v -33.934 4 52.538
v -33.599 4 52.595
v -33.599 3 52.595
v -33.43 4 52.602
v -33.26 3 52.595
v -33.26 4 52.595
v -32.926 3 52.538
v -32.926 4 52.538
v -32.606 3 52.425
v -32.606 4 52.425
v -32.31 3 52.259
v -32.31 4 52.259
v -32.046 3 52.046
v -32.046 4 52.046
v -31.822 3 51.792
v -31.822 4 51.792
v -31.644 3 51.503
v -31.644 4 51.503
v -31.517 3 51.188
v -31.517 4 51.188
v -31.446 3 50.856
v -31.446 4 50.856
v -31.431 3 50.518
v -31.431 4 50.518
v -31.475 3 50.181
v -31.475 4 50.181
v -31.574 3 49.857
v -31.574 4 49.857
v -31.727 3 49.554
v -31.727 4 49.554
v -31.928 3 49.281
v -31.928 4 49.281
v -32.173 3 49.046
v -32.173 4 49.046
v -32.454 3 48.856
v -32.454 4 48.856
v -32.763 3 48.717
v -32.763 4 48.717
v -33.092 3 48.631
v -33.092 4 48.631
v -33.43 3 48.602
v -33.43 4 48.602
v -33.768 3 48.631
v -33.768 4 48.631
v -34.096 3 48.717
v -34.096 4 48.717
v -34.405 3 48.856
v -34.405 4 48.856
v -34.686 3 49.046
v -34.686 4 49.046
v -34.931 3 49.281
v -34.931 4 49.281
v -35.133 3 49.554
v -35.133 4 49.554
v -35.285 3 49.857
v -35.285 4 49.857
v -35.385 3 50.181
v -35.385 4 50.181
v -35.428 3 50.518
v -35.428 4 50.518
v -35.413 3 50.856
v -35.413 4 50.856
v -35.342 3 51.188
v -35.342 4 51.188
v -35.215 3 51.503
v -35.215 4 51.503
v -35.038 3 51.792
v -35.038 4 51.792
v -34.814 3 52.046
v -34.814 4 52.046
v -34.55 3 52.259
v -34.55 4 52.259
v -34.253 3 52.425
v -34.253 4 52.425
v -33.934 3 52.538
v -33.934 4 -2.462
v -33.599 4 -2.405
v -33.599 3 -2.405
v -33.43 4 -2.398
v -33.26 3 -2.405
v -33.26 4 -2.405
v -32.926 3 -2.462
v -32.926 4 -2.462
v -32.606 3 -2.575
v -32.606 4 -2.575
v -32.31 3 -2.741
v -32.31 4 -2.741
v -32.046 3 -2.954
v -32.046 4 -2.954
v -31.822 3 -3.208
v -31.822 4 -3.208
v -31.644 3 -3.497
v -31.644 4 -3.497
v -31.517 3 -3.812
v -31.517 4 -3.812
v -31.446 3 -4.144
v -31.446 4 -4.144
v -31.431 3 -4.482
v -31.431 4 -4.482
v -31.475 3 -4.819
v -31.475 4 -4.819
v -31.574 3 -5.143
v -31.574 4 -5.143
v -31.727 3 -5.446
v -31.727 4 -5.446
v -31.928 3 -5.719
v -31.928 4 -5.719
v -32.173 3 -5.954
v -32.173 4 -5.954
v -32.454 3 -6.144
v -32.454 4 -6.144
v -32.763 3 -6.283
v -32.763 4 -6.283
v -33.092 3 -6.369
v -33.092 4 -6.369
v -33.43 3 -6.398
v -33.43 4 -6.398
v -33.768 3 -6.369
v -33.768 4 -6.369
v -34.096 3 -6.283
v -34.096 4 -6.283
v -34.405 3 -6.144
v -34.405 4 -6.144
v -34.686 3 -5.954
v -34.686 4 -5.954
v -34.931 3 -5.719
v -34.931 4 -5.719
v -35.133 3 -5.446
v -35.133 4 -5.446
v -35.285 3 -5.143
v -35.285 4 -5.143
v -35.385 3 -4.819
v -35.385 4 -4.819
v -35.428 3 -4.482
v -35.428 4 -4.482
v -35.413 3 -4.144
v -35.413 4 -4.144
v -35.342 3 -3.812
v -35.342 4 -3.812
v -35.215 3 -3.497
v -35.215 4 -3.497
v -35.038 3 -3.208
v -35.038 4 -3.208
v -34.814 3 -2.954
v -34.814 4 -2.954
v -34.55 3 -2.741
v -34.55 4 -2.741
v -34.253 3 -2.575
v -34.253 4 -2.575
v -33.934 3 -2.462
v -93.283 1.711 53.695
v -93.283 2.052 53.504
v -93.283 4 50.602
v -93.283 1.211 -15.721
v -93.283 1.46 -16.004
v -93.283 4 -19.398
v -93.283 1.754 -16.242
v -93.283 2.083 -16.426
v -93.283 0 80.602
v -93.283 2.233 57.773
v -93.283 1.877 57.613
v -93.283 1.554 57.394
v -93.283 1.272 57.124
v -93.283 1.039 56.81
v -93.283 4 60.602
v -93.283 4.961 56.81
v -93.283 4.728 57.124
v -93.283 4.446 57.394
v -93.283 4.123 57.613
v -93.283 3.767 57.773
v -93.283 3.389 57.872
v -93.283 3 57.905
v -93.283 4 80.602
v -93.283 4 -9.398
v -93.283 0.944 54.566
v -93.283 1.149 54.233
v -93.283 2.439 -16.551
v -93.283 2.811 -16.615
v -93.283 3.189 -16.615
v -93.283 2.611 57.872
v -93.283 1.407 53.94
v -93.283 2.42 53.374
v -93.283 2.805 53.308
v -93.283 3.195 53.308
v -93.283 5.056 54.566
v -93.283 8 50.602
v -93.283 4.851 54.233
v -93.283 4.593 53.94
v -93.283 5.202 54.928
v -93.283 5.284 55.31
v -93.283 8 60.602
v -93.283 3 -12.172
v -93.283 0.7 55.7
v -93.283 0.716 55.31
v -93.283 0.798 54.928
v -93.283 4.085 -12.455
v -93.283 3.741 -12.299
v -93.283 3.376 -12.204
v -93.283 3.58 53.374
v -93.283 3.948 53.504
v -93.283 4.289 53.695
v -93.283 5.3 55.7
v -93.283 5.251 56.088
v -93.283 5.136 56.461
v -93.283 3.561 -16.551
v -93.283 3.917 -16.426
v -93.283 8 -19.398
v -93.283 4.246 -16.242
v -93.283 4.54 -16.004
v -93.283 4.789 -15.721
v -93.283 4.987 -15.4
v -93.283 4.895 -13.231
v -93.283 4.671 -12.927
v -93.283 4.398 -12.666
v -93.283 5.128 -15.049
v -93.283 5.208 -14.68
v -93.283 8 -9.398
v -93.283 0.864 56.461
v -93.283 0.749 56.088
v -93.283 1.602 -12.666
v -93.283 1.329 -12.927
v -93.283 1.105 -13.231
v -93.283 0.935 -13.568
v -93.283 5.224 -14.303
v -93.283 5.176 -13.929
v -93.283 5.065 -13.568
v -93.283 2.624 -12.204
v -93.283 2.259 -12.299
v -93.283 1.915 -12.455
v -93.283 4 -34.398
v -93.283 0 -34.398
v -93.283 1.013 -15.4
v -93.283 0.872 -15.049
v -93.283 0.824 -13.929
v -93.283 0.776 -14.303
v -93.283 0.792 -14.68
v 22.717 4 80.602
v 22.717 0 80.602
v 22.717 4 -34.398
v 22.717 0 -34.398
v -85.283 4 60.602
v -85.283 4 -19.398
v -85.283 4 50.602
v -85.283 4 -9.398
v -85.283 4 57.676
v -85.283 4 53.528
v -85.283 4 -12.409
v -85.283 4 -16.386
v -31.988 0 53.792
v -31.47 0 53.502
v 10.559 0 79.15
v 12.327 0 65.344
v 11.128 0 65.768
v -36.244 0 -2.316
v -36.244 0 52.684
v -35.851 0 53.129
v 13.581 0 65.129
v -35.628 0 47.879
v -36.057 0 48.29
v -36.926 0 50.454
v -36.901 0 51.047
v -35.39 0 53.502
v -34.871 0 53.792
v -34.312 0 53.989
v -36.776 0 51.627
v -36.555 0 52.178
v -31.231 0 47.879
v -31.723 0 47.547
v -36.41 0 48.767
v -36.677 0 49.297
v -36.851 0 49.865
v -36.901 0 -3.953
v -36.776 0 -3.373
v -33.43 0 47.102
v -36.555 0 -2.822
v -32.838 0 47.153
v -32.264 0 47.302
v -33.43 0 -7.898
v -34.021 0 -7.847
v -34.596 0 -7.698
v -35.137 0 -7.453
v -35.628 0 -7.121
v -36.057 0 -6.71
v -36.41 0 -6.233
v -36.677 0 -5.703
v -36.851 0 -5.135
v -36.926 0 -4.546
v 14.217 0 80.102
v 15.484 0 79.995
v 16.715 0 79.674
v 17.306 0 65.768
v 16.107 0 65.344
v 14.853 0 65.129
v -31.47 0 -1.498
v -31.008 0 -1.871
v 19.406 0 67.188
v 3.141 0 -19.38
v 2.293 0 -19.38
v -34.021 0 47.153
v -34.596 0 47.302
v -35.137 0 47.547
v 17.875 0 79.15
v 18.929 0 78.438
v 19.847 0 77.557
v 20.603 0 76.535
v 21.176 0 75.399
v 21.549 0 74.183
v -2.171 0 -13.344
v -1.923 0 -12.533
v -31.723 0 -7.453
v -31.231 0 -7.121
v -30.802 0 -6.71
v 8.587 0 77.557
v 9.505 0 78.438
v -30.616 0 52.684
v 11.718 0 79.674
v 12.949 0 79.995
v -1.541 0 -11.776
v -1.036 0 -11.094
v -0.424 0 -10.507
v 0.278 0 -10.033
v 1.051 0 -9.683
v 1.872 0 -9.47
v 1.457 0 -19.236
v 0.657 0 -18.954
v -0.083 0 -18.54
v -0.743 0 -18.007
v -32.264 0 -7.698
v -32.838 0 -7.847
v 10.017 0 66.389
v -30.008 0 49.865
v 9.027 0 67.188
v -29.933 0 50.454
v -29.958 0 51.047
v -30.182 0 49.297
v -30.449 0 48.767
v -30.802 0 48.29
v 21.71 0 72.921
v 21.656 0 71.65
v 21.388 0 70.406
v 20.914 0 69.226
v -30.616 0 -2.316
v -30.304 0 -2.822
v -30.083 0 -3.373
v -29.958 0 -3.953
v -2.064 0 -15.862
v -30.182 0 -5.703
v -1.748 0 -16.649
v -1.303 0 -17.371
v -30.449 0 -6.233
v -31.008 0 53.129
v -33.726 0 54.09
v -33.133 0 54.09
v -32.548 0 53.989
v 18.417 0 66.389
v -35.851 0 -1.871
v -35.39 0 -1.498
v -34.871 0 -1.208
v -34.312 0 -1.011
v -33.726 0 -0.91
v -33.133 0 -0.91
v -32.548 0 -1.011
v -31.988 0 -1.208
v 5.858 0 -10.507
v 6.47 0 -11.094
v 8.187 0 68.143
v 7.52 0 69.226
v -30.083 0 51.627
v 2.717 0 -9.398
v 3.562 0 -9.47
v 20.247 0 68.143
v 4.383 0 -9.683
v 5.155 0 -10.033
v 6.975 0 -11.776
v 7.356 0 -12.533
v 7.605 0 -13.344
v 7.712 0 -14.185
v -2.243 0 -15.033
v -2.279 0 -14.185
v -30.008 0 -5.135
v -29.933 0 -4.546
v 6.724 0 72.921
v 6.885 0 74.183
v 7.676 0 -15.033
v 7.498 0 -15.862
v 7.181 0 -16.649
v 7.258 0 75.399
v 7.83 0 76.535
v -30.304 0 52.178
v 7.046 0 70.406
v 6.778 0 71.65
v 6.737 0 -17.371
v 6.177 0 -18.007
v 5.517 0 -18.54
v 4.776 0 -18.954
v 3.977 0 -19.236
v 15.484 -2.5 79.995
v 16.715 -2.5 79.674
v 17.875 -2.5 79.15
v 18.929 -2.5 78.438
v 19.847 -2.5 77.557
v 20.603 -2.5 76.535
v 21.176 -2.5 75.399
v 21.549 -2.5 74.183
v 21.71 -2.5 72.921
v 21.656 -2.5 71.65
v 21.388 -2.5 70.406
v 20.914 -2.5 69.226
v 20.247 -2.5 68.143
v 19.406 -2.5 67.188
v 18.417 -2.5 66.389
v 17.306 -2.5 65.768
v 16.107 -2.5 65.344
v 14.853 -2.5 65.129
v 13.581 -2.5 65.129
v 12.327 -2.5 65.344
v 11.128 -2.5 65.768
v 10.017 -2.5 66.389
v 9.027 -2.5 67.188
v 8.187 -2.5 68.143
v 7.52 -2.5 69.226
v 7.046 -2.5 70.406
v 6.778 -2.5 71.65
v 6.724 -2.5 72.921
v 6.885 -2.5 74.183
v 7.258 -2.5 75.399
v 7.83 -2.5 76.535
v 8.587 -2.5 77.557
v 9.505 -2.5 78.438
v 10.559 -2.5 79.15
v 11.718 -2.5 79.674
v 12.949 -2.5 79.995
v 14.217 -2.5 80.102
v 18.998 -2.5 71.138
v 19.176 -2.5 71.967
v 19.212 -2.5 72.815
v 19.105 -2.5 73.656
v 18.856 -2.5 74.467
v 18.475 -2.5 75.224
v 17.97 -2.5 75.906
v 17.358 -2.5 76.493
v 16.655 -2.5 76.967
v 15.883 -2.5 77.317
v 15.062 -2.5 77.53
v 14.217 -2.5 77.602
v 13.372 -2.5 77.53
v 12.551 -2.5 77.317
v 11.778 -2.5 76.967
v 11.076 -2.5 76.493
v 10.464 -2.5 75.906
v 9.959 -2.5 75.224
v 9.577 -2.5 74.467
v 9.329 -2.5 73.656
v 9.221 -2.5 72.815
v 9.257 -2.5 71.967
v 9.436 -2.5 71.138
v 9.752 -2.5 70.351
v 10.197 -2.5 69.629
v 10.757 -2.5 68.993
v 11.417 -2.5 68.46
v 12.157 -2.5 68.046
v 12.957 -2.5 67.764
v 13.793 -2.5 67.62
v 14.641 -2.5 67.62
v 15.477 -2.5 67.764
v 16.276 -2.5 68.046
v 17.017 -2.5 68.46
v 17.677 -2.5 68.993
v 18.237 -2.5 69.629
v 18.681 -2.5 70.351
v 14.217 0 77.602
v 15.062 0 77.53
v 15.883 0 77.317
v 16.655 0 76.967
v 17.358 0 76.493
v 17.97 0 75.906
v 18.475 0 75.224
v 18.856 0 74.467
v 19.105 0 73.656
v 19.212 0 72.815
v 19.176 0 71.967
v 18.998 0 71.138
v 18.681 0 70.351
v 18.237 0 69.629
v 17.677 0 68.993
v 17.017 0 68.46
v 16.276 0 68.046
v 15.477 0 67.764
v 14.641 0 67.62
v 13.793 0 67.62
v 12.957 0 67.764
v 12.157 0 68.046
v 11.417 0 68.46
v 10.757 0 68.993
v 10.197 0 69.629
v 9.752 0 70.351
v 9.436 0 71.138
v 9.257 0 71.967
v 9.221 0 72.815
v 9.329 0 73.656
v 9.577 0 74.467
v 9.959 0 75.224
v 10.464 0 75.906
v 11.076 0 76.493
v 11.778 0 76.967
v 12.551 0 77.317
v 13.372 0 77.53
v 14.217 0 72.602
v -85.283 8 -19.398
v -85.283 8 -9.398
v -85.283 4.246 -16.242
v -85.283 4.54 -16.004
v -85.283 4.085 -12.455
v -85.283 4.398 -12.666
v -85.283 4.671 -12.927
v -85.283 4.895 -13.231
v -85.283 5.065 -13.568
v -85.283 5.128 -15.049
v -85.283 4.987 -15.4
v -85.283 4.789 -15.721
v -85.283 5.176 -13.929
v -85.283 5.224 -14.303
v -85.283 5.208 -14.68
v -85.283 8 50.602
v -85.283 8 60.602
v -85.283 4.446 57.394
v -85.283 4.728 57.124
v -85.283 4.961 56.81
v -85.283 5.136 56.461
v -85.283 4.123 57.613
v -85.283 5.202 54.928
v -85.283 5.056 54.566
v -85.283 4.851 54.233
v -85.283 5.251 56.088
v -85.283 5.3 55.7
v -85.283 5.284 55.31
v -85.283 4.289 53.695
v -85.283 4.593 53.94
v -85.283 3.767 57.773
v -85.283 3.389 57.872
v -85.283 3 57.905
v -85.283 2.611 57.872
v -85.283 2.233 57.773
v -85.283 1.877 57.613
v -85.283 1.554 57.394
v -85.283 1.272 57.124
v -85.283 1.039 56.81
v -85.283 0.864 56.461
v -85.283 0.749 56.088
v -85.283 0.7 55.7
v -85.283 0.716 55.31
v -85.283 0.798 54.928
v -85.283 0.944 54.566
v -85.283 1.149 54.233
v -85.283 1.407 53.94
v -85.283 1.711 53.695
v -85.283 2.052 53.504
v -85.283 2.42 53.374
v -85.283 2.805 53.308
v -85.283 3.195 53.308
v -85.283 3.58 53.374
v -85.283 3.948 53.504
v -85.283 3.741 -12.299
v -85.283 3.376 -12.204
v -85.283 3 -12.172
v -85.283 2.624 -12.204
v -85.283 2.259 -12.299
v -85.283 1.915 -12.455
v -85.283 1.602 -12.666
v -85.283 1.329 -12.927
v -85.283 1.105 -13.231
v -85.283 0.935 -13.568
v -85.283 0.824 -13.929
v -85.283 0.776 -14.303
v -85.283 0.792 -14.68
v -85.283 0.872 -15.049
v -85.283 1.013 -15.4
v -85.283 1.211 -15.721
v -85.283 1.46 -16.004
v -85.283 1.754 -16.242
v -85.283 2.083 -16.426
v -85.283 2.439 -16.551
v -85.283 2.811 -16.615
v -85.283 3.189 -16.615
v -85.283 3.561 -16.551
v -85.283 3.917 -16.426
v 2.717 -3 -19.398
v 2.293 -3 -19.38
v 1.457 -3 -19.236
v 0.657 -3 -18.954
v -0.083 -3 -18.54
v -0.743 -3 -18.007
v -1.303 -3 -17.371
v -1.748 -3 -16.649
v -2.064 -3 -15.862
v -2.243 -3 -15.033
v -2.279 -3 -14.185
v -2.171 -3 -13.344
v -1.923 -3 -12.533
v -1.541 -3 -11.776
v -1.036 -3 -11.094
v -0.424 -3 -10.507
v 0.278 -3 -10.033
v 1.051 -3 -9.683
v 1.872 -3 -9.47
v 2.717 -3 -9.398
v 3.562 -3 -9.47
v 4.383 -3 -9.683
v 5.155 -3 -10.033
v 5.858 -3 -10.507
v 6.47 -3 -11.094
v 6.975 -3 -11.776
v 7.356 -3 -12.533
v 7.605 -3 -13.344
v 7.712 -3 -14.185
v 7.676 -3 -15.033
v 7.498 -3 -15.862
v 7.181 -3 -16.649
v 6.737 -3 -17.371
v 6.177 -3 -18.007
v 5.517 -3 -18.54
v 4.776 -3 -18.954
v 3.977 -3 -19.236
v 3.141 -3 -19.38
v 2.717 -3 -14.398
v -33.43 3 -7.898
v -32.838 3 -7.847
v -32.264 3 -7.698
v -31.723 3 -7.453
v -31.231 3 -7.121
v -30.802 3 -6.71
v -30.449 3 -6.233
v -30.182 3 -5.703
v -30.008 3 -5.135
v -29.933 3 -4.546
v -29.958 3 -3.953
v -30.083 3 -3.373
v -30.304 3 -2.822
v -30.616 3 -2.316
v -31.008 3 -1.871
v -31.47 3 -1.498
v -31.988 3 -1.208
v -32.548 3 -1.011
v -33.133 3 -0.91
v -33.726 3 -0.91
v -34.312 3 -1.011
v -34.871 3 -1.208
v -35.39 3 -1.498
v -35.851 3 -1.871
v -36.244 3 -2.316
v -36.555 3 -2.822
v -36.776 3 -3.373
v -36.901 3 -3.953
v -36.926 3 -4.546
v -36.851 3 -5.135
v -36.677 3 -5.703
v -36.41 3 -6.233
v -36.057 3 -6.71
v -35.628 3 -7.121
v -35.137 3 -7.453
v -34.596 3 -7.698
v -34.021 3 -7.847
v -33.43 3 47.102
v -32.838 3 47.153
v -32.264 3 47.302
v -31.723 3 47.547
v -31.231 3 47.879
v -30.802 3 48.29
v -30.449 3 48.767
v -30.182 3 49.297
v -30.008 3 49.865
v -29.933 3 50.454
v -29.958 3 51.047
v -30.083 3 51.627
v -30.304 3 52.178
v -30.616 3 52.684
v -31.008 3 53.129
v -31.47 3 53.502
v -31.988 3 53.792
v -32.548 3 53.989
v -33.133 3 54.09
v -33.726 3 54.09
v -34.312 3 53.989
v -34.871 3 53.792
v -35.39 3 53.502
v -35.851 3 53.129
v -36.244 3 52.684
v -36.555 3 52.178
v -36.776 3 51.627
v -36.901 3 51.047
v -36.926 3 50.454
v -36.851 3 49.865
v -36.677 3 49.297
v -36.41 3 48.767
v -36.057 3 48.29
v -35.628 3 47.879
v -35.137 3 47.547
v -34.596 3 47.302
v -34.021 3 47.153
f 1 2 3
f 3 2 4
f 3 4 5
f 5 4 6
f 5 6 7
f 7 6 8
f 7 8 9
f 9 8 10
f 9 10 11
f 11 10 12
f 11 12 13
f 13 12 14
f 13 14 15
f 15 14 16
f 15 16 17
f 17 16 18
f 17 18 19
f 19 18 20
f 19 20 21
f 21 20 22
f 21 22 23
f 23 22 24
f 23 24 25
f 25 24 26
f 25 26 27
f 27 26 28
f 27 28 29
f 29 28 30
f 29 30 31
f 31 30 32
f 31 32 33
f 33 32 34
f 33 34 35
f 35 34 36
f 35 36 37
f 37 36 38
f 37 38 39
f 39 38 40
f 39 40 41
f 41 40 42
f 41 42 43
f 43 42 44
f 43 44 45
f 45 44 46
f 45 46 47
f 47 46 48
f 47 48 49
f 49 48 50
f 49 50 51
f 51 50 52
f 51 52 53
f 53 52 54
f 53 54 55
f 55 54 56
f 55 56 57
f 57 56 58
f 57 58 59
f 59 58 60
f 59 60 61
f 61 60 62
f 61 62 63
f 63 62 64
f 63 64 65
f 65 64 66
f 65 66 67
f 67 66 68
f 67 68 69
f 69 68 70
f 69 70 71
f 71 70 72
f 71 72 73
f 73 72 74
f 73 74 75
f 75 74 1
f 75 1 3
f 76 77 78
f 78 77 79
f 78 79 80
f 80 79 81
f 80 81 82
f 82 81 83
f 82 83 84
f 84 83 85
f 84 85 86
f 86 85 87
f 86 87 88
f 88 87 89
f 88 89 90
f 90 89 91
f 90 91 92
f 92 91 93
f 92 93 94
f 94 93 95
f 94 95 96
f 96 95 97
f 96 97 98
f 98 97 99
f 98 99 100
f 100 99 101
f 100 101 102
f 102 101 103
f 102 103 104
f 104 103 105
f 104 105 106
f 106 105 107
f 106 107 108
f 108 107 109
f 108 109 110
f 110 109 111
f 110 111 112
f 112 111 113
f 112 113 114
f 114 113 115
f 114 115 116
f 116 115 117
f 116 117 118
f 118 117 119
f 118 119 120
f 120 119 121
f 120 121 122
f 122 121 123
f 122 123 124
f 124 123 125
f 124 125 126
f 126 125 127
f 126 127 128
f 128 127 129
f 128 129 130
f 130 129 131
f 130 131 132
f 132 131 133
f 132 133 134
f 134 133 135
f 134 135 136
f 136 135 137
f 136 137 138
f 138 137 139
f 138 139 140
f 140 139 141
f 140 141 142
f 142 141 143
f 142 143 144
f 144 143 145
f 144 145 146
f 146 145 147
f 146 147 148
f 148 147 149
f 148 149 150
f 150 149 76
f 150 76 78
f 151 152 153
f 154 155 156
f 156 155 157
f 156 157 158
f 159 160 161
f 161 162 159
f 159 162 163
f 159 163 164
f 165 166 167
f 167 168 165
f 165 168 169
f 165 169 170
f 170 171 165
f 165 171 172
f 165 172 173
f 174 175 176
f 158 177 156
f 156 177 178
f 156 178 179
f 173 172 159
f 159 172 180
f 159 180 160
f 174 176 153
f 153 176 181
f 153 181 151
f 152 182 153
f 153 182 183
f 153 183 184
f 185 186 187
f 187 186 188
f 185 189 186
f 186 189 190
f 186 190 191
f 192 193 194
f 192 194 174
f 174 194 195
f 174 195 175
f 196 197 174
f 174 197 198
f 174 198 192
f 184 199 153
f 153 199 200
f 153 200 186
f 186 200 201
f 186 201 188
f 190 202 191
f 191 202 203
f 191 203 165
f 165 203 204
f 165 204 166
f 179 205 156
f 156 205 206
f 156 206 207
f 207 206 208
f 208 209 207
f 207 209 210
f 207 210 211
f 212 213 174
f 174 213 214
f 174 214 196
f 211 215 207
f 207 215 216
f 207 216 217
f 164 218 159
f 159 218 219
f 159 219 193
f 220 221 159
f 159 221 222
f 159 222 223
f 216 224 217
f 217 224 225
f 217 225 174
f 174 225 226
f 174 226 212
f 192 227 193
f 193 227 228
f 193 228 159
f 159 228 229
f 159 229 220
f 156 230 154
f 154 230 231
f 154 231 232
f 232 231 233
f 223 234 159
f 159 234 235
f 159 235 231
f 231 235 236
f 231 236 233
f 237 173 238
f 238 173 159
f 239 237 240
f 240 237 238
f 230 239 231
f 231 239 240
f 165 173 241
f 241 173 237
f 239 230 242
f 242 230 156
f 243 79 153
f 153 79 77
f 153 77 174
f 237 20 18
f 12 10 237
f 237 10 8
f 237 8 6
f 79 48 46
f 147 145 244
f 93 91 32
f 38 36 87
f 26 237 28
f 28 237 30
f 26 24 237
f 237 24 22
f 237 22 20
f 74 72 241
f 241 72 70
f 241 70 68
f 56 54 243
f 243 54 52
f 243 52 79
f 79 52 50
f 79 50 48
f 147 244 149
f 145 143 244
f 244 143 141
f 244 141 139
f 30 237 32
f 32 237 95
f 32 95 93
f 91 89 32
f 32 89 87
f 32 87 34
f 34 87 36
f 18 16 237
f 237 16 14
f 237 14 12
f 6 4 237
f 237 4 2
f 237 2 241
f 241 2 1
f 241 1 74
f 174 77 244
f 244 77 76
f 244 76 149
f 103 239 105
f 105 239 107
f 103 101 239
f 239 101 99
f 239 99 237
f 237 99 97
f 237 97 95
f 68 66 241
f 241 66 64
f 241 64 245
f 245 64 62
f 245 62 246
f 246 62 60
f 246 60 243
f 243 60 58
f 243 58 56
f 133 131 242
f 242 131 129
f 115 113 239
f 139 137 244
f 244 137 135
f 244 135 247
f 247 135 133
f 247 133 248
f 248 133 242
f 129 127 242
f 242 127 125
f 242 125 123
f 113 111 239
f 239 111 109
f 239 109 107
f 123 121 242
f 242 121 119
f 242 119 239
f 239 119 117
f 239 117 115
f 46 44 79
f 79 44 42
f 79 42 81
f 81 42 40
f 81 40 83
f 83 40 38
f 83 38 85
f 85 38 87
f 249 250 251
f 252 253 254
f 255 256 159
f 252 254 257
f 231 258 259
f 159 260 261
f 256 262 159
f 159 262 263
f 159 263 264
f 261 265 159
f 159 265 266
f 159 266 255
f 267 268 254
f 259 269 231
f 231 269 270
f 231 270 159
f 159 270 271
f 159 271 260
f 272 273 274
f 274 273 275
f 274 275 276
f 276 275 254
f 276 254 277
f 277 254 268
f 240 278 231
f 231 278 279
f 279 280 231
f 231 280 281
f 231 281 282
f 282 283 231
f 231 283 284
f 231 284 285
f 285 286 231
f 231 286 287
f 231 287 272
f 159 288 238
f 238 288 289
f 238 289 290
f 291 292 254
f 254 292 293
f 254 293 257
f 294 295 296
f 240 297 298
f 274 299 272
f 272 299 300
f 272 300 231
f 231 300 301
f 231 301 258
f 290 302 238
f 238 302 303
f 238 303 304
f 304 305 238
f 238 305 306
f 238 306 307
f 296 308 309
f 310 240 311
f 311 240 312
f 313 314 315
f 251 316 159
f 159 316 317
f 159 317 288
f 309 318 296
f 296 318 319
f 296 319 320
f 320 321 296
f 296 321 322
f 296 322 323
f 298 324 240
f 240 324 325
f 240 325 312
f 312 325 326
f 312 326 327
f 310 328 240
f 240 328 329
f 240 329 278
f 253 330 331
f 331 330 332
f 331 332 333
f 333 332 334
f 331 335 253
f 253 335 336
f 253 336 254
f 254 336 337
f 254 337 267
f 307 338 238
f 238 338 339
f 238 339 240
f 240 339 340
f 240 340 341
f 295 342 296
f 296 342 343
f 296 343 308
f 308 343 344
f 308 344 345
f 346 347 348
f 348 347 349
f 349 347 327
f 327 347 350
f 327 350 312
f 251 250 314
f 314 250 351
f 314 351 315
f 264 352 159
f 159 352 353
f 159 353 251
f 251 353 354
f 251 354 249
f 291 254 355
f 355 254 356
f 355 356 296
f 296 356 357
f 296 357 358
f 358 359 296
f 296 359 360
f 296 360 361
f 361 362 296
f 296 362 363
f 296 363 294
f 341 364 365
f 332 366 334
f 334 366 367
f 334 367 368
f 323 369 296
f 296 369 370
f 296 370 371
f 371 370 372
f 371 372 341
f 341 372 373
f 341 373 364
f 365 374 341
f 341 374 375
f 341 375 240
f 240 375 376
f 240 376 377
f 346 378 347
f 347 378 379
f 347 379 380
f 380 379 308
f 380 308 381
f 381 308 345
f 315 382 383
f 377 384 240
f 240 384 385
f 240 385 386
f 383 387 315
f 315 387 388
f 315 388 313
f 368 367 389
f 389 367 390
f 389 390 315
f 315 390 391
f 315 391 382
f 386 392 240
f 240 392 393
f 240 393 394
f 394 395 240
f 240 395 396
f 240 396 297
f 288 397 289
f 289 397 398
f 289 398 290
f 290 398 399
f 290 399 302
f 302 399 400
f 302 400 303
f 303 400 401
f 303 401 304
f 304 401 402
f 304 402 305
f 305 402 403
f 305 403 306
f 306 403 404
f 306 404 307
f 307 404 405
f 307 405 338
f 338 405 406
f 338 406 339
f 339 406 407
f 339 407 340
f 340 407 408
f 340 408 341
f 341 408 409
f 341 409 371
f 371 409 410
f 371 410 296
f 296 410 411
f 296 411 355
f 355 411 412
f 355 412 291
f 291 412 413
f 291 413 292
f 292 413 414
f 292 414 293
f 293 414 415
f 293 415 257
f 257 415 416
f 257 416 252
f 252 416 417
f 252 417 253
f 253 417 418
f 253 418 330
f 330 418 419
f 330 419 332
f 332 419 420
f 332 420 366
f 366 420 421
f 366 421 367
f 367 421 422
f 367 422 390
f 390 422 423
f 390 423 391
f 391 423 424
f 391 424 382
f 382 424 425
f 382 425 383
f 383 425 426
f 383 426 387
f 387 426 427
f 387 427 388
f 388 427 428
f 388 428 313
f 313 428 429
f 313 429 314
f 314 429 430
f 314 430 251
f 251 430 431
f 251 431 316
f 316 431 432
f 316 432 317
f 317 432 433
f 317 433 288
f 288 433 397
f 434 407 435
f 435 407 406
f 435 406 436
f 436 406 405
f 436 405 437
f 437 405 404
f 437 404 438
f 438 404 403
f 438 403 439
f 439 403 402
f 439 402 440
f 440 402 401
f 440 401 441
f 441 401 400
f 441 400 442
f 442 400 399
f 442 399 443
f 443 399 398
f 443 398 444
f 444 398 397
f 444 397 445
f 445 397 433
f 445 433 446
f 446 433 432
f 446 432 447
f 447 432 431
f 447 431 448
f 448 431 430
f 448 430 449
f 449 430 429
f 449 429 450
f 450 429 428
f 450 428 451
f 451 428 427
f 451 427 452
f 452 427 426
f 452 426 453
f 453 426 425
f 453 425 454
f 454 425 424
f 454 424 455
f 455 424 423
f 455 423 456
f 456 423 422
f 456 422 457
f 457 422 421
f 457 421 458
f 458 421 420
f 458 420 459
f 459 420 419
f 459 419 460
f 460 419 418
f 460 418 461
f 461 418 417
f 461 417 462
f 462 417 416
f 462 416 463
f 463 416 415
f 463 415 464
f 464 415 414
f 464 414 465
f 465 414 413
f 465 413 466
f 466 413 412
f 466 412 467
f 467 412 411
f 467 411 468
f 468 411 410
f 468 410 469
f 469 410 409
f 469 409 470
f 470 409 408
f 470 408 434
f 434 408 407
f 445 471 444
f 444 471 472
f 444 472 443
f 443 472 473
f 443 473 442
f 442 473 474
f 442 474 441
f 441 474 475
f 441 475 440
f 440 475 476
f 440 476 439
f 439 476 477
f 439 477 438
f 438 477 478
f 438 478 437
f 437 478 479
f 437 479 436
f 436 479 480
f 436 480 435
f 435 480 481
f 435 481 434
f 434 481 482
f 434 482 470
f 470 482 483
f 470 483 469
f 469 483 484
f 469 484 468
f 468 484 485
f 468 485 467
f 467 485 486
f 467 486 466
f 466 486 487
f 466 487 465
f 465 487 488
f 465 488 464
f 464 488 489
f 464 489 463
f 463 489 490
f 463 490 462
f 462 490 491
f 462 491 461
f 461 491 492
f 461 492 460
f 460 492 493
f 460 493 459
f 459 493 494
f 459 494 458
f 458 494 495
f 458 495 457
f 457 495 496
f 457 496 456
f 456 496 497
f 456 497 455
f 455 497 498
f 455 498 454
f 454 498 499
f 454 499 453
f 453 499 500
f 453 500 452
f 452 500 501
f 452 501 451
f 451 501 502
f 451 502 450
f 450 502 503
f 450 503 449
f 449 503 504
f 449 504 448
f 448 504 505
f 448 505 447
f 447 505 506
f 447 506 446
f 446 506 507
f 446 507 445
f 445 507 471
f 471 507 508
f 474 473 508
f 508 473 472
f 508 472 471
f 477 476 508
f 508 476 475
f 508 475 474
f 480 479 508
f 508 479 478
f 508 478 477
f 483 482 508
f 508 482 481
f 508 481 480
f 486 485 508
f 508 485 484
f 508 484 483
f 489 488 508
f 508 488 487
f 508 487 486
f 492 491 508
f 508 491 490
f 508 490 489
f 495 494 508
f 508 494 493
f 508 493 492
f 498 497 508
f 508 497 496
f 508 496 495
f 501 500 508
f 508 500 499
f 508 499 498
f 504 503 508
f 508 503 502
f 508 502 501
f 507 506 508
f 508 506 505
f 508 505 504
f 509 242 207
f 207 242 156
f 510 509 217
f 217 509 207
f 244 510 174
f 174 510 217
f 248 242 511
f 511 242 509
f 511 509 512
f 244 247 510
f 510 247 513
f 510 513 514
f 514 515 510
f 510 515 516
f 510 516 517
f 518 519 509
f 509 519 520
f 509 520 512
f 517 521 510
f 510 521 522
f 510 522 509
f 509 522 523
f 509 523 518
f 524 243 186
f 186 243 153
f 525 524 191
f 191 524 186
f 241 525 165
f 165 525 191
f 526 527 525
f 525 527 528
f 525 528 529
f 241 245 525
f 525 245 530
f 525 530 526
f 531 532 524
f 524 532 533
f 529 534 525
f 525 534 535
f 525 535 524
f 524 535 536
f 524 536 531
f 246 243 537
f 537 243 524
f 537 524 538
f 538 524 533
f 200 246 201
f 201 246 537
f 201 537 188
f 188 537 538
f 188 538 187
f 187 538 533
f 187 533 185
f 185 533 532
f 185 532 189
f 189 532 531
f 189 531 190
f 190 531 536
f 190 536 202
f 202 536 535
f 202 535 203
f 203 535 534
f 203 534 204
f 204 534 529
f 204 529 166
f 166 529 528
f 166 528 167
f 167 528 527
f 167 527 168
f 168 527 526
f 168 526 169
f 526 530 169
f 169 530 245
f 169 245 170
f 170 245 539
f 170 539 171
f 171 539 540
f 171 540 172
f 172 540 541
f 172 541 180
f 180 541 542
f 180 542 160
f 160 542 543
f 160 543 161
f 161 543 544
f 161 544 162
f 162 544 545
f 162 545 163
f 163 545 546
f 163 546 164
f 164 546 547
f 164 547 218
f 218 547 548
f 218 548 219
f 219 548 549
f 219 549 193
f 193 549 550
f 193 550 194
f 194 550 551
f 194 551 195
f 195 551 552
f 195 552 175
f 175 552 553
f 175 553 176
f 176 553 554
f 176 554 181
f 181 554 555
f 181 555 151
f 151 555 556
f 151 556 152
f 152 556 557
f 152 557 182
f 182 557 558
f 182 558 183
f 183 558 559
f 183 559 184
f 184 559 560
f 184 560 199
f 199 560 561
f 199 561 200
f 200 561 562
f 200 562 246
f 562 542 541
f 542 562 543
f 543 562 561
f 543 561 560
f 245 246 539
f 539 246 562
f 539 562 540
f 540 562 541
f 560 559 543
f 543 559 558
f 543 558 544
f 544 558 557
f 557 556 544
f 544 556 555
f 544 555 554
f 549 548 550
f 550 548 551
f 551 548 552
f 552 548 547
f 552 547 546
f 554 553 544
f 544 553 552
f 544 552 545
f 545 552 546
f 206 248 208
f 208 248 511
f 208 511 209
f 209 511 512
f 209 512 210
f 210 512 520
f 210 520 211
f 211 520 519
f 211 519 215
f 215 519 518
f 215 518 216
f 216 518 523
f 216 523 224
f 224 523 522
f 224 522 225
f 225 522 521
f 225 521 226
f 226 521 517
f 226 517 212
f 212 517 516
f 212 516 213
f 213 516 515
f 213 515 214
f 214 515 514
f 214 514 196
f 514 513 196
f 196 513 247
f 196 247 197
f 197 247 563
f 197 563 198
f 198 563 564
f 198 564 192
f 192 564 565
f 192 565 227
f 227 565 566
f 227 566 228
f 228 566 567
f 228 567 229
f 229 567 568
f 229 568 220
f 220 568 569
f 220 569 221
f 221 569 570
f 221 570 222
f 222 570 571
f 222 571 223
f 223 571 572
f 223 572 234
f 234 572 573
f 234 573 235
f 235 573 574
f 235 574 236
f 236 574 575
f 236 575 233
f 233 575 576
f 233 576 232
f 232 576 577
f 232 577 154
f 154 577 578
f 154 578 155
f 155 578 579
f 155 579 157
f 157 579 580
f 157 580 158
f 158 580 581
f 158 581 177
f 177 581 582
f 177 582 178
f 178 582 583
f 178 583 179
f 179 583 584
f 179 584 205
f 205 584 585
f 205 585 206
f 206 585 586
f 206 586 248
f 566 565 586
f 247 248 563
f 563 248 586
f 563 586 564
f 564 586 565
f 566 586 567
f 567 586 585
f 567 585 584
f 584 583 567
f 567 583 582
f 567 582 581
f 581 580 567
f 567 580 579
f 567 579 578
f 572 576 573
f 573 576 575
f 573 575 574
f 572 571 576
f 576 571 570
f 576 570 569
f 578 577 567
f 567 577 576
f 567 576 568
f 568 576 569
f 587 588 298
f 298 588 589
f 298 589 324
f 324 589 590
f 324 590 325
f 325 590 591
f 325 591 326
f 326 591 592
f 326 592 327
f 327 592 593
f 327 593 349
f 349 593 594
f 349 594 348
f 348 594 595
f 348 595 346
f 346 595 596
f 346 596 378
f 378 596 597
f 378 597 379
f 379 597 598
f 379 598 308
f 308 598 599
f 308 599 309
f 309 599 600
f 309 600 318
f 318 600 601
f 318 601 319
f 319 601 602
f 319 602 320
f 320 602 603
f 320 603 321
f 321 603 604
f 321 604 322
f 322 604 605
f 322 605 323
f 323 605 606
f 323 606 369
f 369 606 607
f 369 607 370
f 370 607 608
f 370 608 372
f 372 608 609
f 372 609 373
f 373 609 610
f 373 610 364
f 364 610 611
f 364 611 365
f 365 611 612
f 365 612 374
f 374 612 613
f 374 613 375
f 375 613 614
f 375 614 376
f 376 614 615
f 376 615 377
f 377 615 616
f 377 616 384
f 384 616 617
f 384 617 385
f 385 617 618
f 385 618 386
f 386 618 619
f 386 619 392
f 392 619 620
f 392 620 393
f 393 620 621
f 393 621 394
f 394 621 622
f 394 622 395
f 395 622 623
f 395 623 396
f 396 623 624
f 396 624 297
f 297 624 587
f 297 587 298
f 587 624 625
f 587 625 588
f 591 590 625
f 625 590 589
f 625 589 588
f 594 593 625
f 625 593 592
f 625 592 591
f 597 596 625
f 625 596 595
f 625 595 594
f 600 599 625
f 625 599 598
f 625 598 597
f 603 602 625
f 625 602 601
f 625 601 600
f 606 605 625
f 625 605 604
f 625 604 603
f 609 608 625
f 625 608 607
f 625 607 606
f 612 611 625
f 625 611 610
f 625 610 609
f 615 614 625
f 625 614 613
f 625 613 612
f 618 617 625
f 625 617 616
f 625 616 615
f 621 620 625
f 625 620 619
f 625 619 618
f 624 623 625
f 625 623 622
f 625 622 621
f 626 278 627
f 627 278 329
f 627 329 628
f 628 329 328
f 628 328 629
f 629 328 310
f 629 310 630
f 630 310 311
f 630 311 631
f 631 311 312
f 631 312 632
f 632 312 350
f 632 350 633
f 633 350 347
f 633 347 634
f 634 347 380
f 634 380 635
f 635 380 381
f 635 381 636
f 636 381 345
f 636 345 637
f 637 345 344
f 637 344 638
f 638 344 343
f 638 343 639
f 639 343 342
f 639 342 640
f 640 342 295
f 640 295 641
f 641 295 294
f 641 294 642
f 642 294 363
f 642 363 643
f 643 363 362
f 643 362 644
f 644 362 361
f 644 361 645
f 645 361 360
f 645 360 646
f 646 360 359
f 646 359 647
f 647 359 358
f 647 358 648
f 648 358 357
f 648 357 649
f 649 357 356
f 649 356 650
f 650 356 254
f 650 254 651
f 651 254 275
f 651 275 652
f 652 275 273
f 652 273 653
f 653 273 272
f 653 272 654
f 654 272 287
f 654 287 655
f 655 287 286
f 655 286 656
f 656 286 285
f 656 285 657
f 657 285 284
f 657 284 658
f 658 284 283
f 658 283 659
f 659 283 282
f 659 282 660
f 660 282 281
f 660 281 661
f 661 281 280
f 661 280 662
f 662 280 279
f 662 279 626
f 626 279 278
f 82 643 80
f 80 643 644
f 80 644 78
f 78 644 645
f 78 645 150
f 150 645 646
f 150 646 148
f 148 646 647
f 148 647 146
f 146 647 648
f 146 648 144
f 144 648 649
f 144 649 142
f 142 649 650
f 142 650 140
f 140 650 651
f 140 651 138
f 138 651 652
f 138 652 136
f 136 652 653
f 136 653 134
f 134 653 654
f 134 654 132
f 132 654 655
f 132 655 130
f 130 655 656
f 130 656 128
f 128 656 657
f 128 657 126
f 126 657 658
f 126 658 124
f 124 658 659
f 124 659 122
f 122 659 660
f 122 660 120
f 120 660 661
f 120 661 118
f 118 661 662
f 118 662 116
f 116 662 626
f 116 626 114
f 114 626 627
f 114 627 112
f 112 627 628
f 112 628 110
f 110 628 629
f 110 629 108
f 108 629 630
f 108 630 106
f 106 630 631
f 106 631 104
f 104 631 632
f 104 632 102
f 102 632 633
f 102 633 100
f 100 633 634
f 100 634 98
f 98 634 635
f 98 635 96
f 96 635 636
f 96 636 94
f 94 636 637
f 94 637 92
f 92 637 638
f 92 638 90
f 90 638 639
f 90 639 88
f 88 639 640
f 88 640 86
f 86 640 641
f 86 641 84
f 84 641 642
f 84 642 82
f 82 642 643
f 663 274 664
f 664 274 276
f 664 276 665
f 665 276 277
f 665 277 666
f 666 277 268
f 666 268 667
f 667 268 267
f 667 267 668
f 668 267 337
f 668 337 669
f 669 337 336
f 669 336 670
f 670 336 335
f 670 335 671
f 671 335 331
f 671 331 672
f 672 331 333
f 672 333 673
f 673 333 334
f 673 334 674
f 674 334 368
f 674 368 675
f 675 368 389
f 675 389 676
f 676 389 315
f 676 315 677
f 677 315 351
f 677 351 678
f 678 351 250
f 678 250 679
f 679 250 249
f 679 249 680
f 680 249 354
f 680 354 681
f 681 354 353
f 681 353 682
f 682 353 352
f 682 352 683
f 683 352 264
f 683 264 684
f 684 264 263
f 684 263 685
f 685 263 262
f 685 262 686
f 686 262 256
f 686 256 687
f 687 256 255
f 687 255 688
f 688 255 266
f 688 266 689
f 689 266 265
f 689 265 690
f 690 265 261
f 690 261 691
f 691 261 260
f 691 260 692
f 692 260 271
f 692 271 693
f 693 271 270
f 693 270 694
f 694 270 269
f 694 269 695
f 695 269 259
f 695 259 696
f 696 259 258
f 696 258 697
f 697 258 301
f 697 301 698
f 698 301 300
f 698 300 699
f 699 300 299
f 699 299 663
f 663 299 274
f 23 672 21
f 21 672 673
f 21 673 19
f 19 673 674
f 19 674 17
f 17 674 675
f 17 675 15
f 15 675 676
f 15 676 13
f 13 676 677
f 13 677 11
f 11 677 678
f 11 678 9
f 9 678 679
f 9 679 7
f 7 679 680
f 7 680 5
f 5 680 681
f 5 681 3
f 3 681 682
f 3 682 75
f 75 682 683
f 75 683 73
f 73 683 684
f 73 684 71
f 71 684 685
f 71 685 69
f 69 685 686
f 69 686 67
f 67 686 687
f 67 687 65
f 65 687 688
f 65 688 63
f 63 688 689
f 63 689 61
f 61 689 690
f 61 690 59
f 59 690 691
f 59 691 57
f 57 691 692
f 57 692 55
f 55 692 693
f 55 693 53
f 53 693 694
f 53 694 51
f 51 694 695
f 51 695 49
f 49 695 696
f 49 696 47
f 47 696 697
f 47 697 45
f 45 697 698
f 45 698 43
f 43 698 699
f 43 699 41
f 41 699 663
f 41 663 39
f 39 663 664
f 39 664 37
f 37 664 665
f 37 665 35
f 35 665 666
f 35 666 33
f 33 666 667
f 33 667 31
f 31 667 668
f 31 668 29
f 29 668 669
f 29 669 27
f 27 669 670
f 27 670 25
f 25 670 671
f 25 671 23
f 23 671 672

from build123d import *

# Parameters (mm, degrees)
SKETCH1_W               = 116
SKETCH1_H               = 115
BOSS_EXTRUDE1_DEPTH     = 4
SKETCH2_R               = 7.5
SKETCH2_R_2             = 5
BOSS_EXTRUDE2_DEPTH     = 2.5
SKETCH3_W               = 10
SKETCH3_H               = 4
BOSS_EXTRUDE3_DEPTH     = 8
SKETCH6_R               = 2.225609416
SKETCH6_R_2             = 2.302524441
CUT_EXTRUDE2_DEPTH      = 8
SKETCH7_R               = 5
BOSS_EXTRUDE5_DEPTH     = 3
SKETCH9_R               = 2
CUT_EXTRUDE3_DEPTH      = 5
CUT_EXTRUDE3_DEPTH_BACK = 8
SKETCH10_R              = 3.5
CUT_EXTRUDE5_DEPTH      = 3


with BuildPart() as part:
    # Sketch1 → Boss-Extrude1 (new body)
    with BuildSketch(Plane(origin=(0, 0, 0), x_dir=(1, 0, 0), z_dir=(0, 1, 0))):
        with Locations((-35.28313253, -23.102409639)):
            Rectangle(SKETCH1_W, SKETCH1_H)
    extrude(amount=BOSS_EXTRUDE1_DEPTH)

    # Sketch2 → Boss-Extrude2 (add)
    with BuildSketch(Plane(origin=(0, 0, 0), x_dir=(1, 0, 0), z_dir=(0, 1, 0))):
        with Locations((14.21686747, -72.602409639)):
            Circle(SKETCH2_R)
        with Locations((14.21686747, -72.602409639)):
            Circle(SKETCH2_R_2, mode=Mode.SUBTRACT)
    extrude(amount=-BOSS_EXTRUDE2_DEPTH)

    # Sketch3 → Boss-Extrude3 (add)
    with BuildSketch(Plane.ZY.offset(93.28313253)):
        with Locations((-14.397590361, 6)):
            Rectangle(SKETCH3_W, SKETCH3_H)
        with Locations((55.602409639, 6)):
            Rectangle(SKETCH3_W, SKETCH3_H)
    extrude(amount=-BOSS_EXTRUDE3_DEPTH)

    # Sketch6 → Cut-Extrude2 (cut)
    with BuildSketch(Plane.ZY.offset(93.28313253)):
        with Locations((-14.397590361, 3)):
            Circle(SKETCH6_R)
        with Locations((55.602409639, 3)):
            Circle(SKETCH6_R_2)
    extrude(amount=-CUT_EXTRUDE2_DEPTH, mode=Mode.SUBTRACT)

    # Sketch7 → Boss-Extrude5 (add)
    with BuildSketch(Plane.XZ):
        with Locations((2.71686747, -14.397590361)):
            Circle(SKETCH7_R)
    extrude(amount=BOSS_EXTRUDE5_DEPTH)

    # Sketch9 → Cut-Extrude3 (cut, two sides)
    with BuildSketch(Plane(origin=(0, 4, 0), x_dir=(1, 0, 0), z_dir=(0, 1, 0))) as cut_extrude3_sk:
        with Locations((-33.429640785, 4.397590361)):
            Circle(SKETCH9_R)
        with Locations((-33.429640785, -50.602409639)):
            Circle(SKETCH9_R)
    extrude(amount=CUT_EXTRUDE3_DEPTH, mode=Mode.SUBTRACT)
    extrude(cut_extrude3_sk.sketch, amount=-CUT_EXTRUDE3_DEPTH_BACK, mode=Mode.SUBTRACT)

    # Sketch10 → Cut-Extrude5 (cut)
    with BuildSketch(Plane.XZ):
        with Locations((-33.429640785, -4.397590361)):
            Circle(SKETCH10_R)
        with Locations((-33.429640785, 50.602409639)):
            Circle(SKETCH10_R)
    extrude(amount=-CUT_EXTRUDE5_DEPTH, mode=Mode.SUBTRACT)


solid = part.part
